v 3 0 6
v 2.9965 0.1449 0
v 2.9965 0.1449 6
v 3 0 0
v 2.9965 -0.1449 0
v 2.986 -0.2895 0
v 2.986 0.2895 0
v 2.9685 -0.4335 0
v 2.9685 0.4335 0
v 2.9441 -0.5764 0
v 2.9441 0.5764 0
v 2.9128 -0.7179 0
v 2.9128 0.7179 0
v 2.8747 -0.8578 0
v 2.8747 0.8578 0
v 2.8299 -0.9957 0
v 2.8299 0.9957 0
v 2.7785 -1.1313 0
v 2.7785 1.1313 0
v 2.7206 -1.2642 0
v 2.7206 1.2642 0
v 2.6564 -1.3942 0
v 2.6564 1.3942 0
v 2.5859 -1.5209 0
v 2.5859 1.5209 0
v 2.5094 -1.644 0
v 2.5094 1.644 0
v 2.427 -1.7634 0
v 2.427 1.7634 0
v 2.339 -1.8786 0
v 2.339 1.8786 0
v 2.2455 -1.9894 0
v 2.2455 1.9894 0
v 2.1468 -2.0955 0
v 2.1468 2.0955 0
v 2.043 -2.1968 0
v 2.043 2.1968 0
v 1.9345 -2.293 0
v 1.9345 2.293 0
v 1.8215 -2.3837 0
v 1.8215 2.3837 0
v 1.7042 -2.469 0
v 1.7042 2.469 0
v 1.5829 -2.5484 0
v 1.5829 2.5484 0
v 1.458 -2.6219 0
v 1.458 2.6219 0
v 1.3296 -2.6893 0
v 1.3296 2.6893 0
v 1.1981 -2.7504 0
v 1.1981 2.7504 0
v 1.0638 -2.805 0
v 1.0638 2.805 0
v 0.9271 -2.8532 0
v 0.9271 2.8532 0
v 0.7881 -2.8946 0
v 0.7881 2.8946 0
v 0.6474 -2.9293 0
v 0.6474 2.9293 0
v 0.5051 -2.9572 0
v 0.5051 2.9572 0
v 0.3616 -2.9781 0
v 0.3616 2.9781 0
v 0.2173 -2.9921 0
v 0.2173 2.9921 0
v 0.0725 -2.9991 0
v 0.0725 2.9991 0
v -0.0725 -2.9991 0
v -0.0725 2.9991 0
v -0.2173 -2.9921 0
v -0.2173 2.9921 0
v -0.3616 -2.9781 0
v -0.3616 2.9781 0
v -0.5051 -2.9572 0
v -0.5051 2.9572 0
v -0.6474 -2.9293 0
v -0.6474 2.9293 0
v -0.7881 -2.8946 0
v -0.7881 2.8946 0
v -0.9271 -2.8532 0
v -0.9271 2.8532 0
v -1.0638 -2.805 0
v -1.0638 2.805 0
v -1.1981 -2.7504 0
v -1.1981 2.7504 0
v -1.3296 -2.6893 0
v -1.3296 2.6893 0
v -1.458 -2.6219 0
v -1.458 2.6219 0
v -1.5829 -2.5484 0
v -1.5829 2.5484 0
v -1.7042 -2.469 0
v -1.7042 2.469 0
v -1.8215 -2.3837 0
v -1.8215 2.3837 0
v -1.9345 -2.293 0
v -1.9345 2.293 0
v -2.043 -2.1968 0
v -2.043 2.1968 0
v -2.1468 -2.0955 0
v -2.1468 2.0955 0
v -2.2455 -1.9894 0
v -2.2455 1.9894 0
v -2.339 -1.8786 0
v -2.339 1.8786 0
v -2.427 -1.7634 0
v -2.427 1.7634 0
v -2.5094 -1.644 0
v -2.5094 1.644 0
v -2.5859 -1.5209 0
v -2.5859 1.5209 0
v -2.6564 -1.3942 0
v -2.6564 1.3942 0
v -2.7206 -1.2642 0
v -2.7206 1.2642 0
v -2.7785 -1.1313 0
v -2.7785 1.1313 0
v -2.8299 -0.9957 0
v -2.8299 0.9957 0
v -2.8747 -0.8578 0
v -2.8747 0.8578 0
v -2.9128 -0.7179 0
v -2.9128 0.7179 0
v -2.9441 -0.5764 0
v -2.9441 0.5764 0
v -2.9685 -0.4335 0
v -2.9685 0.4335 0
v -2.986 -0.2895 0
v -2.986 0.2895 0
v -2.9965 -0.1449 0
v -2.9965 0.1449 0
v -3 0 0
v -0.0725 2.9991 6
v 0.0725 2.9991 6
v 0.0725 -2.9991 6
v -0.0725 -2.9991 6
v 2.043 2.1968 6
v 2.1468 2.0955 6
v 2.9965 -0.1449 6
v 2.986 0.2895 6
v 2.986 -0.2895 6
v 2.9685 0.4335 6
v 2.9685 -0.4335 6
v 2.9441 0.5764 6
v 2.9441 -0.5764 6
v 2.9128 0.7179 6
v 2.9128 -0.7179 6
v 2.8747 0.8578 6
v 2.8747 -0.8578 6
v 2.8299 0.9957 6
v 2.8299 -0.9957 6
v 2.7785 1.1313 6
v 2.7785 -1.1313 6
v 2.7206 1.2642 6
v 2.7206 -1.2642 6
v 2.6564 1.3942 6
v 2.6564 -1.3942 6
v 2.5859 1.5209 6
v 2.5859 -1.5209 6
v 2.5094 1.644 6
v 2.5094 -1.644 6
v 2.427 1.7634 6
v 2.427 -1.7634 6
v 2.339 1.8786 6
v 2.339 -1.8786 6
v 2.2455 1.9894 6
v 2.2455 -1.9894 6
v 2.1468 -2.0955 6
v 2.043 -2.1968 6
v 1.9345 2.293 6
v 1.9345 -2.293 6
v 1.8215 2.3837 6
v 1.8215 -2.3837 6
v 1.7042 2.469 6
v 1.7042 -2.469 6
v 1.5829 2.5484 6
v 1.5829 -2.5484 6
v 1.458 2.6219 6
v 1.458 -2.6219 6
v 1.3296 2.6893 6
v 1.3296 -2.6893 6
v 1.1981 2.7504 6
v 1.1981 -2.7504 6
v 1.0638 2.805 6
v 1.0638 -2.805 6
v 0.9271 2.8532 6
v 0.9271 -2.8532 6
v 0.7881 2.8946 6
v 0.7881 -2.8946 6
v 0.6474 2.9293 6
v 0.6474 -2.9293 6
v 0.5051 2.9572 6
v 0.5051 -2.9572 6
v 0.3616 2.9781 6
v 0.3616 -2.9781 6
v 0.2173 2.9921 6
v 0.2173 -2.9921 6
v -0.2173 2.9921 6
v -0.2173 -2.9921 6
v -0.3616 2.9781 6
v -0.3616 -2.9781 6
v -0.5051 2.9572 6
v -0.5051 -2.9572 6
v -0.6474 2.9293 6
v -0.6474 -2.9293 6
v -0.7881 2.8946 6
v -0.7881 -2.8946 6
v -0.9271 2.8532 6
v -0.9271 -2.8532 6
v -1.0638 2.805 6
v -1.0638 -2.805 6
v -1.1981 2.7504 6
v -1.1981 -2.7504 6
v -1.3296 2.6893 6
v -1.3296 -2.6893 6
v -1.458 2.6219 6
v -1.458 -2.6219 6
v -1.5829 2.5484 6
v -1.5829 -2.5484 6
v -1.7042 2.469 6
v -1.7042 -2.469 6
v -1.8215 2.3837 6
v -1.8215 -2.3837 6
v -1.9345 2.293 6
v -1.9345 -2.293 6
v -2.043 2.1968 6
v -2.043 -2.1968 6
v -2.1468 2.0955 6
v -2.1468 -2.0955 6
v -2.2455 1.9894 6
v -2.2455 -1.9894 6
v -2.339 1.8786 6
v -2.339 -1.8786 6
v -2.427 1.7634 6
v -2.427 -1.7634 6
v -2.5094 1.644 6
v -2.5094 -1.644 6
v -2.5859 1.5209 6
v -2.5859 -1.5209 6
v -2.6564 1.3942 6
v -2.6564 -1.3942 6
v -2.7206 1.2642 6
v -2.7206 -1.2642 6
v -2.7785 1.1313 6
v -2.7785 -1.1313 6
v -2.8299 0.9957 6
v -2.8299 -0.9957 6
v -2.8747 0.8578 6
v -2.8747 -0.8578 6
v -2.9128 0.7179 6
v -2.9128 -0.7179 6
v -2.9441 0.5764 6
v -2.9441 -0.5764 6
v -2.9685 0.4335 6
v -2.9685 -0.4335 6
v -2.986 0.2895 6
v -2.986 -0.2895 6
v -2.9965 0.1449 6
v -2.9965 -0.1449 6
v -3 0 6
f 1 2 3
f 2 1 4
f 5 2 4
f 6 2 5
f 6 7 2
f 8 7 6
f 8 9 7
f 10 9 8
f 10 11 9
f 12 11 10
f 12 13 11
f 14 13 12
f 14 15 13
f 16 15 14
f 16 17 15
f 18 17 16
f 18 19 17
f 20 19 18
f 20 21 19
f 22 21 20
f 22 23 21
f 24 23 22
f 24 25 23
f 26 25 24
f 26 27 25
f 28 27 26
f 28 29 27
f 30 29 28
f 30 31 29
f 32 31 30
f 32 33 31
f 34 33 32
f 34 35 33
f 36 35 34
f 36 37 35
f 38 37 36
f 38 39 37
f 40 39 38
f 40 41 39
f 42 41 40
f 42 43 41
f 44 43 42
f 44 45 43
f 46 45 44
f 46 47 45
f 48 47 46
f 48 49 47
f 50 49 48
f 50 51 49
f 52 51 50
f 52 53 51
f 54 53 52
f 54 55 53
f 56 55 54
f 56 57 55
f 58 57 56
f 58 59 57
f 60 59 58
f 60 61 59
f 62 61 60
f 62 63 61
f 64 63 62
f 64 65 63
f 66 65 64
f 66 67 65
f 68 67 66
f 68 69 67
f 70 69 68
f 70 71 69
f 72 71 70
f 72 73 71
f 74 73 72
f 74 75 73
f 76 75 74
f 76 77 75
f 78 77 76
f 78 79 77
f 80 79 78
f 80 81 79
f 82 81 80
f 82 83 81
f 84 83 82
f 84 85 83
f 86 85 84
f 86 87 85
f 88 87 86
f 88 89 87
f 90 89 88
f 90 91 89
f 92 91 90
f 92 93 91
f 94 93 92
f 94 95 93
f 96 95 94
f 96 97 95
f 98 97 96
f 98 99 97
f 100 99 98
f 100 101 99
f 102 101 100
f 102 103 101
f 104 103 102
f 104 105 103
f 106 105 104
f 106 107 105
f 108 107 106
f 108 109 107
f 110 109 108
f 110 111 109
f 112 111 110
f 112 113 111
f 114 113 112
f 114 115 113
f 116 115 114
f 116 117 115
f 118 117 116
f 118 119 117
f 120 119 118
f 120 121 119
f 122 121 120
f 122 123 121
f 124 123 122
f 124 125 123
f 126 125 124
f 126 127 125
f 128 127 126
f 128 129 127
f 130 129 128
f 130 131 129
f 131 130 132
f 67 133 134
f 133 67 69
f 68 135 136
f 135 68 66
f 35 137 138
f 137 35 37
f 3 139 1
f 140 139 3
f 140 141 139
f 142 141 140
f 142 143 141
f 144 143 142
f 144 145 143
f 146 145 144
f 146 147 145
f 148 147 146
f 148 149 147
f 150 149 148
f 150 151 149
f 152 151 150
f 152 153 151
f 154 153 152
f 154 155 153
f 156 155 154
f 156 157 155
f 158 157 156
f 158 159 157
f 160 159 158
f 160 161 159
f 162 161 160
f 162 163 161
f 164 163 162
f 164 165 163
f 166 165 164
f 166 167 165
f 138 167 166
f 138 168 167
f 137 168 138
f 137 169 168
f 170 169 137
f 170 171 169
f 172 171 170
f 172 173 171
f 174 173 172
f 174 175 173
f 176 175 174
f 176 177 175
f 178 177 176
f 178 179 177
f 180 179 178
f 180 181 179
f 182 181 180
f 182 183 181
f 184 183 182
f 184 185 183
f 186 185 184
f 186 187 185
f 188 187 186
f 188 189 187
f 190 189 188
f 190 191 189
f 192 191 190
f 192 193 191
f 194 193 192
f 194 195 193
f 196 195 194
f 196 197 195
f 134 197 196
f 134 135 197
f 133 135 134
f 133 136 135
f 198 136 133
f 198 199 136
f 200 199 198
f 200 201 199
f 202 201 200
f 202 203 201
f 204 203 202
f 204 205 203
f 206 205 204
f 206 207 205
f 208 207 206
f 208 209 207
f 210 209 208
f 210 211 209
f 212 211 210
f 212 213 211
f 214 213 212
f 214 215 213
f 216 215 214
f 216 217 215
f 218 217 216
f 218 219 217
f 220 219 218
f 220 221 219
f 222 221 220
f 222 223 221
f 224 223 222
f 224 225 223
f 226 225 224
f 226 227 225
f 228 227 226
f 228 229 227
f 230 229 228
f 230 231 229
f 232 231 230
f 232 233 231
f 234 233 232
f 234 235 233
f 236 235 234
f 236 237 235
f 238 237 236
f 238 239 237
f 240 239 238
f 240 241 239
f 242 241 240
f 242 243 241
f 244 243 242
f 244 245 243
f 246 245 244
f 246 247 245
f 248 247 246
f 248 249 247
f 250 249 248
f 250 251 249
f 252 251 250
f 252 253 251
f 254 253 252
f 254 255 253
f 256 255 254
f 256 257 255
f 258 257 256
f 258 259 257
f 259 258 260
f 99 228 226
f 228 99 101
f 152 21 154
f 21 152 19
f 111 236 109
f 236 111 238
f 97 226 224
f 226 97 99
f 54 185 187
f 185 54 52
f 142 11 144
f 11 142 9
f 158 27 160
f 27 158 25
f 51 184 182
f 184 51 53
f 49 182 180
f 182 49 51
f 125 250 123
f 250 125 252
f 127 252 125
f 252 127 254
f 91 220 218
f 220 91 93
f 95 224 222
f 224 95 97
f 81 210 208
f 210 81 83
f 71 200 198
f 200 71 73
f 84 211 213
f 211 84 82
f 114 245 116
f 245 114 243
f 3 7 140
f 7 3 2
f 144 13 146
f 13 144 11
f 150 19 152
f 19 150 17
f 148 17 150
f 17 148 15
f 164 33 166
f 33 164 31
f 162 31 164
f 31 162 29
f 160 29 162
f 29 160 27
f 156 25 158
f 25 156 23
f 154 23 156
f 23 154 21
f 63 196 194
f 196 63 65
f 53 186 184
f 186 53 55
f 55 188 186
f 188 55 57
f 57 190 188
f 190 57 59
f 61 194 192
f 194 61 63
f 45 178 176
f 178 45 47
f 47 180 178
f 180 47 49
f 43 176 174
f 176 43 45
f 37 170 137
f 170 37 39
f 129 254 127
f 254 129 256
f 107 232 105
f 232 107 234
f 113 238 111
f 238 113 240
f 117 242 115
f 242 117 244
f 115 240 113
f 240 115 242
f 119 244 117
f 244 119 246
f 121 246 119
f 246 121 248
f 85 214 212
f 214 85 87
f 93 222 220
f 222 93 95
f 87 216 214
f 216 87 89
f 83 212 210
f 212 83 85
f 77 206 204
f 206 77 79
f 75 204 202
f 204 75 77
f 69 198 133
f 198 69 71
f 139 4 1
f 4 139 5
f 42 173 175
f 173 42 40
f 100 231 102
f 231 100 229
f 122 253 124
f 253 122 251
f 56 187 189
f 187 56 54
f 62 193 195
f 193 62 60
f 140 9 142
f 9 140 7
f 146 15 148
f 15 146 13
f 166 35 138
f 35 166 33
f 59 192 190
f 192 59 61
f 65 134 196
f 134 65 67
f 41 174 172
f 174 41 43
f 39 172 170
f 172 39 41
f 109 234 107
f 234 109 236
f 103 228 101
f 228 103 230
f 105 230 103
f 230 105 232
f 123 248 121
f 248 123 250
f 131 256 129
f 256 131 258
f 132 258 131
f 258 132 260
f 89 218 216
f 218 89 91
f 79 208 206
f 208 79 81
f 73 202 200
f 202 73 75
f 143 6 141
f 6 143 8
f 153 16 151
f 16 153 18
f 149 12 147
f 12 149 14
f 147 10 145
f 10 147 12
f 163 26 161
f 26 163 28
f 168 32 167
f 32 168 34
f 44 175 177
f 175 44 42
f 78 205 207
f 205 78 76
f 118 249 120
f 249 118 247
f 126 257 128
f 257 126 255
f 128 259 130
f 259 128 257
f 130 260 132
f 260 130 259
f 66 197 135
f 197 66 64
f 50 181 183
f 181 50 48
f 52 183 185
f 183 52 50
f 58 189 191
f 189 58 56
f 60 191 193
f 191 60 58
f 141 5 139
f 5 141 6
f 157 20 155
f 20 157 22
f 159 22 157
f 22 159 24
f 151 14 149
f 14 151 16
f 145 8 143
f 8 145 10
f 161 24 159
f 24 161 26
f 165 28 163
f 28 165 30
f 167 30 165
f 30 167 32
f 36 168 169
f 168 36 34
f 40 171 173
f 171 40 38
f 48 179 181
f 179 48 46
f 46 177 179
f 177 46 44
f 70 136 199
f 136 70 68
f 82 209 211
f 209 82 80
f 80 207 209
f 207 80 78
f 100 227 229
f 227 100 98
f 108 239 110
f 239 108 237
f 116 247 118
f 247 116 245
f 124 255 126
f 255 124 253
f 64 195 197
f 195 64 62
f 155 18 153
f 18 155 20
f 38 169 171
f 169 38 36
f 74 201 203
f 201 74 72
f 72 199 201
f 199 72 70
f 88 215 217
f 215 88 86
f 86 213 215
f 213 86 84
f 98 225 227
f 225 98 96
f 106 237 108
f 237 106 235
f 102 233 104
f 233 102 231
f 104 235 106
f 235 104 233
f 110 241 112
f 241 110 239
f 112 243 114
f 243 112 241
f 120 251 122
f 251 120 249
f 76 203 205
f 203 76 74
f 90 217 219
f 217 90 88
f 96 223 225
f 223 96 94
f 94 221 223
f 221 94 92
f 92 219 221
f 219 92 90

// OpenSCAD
$fn=130;

D_sock=6;   //Sockeldurchmesser
D_knub=0; //Knubbeldurchmesser
H_sock=6;   //Sockelhöhe
H_knub=0   ;  //Knubbelhöhe 10 = Knuppelsockel=1.3mm
S_knub=0.5; //Schaftdurchmesser=Knubbeldurchmesser-0.5

//Sockel
H=H_sock-6;
color("SlateGray")
//color("WhiteSmoke")
translate([0,0,H*-1])
cylinder (h=H_sock, d=D_sock);

difference(){

//Knubbl
//color("SlateGray")
color("WhiteSmoke")    

union(){

translate([0,0,H_knub-0.7])
cylinder (h=1, d1=D_knub, d2=D_knub-2);

translate([0,0,H_knub-2.7])
cylinder (h=1, d1=D_knub-S_knub, d2=D_knub);

translate([0,0,H_knub-1.7])
cylinder (h=1, d1=D_knub, d2=D_knub);

//Schaft
translate([0,0,5.3])
cylinder (h=2.5, d=D_knub-S_knub);   
}


//Einschnitt
translate([-0.4,-2.5,6.3])
 cube([0.9,5,7]);
}

//Knuppel-Shaft messen V3 Höhe = 1.3mm
//translate([2,-3,6])
// cube([0.9,5,1.3]);
